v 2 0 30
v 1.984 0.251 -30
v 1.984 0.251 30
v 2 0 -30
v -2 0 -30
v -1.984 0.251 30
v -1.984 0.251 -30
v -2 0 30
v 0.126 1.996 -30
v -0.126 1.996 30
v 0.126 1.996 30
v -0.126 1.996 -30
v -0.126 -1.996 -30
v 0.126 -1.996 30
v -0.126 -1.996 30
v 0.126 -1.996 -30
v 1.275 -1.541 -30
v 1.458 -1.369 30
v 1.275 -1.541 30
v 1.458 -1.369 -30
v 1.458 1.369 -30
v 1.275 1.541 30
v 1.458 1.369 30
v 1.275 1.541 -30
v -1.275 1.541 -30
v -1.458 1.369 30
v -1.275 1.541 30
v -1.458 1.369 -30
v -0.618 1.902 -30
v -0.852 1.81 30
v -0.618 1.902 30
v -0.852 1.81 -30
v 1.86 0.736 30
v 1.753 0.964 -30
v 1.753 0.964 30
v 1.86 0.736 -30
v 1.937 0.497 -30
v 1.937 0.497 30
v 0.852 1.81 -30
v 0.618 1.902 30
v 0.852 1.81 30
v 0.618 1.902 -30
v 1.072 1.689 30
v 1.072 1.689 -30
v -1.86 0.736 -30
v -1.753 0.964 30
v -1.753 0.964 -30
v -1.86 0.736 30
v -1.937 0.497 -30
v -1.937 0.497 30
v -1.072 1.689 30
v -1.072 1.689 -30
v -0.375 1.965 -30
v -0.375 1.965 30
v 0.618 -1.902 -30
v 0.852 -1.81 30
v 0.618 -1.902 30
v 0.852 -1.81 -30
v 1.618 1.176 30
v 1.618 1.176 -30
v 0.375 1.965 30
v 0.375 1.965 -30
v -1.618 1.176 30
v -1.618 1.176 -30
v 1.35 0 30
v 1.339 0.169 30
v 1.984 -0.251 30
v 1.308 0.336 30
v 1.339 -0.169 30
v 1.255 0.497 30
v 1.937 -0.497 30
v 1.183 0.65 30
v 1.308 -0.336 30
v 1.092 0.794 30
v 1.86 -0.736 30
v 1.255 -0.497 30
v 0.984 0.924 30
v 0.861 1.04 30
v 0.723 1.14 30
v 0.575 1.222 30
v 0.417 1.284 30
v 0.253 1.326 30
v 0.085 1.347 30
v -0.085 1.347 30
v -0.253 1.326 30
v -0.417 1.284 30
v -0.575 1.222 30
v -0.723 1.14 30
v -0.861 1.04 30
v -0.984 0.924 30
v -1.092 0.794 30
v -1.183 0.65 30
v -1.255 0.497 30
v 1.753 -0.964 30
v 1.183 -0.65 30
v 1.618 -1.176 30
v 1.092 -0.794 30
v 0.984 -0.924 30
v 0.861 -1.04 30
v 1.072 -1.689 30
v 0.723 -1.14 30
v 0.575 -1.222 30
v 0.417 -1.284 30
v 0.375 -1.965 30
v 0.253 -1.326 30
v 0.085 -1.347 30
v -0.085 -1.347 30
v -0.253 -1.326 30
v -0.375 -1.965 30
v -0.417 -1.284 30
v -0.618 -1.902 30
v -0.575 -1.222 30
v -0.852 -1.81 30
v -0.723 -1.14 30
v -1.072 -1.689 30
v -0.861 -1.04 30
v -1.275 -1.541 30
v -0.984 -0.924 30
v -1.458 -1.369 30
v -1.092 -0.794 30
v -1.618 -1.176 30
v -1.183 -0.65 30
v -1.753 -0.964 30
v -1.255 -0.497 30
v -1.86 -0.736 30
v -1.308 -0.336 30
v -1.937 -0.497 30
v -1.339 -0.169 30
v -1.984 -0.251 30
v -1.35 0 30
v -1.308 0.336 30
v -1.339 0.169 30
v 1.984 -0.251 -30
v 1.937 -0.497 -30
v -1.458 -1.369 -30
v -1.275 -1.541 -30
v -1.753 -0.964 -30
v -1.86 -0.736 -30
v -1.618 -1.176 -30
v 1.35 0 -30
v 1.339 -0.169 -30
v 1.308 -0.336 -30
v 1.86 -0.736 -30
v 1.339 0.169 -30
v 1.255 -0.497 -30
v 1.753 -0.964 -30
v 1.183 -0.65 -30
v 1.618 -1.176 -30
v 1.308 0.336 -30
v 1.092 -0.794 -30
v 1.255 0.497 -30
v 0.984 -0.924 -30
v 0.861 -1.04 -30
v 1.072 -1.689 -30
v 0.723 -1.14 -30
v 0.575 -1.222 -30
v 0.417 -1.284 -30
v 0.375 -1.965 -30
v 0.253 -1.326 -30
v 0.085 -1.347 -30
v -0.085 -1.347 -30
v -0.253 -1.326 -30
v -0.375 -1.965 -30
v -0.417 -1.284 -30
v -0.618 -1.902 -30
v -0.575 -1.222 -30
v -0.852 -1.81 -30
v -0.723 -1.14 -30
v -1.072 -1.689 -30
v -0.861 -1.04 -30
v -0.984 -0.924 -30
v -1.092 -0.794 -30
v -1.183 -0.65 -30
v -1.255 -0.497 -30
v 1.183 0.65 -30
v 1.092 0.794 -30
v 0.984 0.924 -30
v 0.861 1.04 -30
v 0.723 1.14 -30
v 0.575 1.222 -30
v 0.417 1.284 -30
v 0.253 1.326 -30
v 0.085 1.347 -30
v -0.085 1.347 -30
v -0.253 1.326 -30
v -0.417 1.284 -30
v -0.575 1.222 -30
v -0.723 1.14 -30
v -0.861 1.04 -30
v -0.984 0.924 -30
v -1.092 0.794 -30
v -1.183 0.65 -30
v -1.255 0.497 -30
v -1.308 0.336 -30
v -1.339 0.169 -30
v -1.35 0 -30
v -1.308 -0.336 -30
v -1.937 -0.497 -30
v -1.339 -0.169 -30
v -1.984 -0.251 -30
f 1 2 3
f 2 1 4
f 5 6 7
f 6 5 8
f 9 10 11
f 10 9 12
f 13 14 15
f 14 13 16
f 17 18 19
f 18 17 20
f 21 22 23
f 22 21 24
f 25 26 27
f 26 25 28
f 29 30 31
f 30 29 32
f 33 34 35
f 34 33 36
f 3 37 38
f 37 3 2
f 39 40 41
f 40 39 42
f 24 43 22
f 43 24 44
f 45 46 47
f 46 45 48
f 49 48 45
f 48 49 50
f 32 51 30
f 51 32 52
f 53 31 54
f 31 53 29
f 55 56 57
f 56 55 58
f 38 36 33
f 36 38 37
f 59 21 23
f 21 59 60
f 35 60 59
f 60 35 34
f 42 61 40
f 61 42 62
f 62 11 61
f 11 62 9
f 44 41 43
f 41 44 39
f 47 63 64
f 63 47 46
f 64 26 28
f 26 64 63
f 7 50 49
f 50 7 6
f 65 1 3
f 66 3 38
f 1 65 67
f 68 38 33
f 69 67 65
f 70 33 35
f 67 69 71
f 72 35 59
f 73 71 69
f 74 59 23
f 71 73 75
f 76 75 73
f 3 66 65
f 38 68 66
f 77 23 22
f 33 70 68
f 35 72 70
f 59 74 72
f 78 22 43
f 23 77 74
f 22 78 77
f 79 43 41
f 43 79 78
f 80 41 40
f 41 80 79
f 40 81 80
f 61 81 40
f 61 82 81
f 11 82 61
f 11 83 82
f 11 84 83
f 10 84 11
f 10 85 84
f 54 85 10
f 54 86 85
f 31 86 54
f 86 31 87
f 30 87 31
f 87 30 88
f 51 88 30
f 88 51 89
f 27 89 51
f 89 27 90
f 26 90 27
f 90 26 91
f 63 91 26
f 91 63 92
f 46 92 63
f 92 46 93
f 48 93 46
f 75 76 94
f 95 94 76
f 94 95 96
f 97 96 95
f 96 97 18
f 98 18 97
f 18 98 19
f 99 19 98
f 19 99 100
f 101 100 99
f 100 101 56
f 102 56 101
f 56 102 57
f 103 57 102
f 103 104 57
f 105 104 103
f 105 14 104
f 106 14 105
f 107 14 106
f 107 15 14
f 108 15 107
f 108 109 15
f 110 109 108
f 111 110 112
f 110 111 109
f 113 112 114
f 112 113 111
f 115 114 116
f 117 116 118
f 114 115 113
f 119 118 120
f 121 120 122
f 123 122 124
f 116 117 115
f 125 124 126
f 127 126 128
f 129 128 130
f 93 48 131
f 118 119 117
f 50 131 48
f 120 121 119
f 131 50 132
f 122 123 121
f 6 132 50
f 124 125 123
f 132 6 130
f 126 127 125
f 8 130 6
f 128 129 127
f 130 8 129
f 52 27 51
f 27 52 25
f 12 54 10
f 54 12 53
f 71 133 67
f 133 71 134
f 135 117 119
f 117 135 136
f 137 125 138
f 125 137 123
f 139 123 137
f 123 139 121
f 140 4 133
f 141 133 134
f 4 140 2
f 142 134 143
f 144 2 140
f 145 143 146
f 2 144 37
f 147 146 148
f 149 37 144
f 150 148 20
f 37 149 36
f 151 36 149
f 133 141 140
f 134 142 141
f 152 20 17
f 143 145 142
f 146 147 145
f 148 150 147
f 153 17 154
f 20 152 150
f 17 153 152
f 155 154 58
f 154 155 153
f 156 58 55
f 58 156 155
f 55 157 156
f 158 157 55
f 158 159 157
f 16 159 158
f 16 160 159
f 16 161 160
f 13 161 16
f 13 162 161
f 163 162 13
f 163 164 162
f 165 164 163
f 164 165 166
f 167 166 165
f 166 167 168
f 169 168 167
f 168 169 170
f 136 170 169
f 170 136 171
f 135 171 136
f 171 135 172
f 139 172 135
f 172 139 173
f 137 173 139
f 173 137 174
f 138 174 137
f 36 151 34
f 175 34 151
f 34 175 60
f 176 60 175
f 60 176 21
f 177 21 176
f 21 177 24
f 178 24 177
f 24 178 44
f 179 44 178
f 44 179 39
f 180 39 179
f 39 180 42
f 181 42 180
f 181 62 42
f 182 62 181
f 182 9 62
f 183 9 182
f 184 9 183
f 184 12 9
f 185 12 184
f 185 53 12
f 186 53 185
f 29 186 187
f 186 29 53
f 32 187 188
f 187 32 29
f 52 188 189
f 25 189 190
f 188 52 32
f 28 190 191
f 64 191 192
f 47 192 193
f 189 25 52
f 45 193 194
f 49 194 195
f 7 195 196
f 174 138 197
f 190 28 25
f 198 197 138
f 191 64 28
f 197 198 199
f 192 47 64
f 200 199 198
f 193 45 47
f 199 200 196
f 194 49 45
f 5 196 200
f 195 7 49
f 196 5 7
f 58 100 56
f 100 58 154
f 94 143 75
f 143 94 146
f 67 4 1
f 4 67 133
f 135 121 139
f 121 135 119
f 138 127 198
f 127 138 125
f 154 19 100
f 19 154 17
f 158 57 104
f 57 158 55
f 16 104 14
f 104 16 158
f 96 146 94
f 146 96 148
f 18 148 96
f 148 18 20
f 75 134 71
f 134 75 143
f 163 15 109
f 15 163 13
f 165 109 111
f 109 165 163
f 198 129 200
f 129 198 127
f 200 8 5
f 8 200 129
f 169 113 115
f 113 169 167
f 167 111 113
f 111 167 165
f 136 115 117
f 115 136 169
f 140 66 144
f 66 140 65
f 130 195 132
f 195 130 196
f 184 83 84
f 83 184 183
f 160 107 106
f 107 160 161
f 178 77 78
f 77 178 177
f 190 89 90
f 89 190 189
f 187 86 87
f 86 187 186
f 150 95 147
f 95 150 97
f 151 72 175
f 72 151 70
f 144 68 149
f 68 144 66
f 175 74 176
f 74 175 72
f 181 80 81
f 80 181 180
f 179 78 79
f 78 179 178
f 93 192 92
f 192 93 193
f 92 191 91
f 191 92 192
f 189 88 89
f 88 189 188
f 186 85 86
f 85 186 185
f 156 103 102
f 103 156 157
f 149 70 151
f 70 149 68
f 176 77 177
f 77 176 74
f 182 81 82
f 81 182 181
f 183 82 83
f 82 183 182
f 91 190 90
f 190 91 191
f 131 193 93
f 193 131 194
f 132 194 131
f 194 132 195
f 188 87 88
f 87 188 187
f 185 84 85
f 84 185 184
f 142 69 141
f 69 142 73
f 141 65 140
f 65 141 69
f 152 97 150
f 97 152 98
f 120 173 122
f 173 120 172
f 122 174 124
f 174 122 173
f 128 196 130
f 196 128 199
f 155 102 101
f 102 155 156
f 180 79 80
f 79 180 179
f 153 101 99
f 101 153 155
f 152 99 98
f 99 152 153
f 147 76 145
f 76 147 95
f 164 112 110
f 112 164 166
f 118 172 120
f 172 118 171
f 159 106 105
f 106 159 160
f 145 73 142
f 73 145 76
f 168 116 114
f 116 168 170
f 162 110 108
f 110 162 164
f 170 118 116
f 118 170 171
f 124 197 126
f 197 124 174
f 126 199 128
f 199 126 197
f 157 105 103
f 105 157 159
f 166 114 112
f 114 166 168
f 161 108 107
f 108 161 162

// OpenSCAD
$fn = 50;


difference() {
	union() {
		translate(v = [0, 0, -30.0000000000]) {
			cylinder(h = 60, r = 2.0000000000);
		}
	}
	union() {
		translate(v = [0, 0, -100.0000000000]) {
			cylinder(h = 200, r = 1.3500000000);
		}
	}
}
